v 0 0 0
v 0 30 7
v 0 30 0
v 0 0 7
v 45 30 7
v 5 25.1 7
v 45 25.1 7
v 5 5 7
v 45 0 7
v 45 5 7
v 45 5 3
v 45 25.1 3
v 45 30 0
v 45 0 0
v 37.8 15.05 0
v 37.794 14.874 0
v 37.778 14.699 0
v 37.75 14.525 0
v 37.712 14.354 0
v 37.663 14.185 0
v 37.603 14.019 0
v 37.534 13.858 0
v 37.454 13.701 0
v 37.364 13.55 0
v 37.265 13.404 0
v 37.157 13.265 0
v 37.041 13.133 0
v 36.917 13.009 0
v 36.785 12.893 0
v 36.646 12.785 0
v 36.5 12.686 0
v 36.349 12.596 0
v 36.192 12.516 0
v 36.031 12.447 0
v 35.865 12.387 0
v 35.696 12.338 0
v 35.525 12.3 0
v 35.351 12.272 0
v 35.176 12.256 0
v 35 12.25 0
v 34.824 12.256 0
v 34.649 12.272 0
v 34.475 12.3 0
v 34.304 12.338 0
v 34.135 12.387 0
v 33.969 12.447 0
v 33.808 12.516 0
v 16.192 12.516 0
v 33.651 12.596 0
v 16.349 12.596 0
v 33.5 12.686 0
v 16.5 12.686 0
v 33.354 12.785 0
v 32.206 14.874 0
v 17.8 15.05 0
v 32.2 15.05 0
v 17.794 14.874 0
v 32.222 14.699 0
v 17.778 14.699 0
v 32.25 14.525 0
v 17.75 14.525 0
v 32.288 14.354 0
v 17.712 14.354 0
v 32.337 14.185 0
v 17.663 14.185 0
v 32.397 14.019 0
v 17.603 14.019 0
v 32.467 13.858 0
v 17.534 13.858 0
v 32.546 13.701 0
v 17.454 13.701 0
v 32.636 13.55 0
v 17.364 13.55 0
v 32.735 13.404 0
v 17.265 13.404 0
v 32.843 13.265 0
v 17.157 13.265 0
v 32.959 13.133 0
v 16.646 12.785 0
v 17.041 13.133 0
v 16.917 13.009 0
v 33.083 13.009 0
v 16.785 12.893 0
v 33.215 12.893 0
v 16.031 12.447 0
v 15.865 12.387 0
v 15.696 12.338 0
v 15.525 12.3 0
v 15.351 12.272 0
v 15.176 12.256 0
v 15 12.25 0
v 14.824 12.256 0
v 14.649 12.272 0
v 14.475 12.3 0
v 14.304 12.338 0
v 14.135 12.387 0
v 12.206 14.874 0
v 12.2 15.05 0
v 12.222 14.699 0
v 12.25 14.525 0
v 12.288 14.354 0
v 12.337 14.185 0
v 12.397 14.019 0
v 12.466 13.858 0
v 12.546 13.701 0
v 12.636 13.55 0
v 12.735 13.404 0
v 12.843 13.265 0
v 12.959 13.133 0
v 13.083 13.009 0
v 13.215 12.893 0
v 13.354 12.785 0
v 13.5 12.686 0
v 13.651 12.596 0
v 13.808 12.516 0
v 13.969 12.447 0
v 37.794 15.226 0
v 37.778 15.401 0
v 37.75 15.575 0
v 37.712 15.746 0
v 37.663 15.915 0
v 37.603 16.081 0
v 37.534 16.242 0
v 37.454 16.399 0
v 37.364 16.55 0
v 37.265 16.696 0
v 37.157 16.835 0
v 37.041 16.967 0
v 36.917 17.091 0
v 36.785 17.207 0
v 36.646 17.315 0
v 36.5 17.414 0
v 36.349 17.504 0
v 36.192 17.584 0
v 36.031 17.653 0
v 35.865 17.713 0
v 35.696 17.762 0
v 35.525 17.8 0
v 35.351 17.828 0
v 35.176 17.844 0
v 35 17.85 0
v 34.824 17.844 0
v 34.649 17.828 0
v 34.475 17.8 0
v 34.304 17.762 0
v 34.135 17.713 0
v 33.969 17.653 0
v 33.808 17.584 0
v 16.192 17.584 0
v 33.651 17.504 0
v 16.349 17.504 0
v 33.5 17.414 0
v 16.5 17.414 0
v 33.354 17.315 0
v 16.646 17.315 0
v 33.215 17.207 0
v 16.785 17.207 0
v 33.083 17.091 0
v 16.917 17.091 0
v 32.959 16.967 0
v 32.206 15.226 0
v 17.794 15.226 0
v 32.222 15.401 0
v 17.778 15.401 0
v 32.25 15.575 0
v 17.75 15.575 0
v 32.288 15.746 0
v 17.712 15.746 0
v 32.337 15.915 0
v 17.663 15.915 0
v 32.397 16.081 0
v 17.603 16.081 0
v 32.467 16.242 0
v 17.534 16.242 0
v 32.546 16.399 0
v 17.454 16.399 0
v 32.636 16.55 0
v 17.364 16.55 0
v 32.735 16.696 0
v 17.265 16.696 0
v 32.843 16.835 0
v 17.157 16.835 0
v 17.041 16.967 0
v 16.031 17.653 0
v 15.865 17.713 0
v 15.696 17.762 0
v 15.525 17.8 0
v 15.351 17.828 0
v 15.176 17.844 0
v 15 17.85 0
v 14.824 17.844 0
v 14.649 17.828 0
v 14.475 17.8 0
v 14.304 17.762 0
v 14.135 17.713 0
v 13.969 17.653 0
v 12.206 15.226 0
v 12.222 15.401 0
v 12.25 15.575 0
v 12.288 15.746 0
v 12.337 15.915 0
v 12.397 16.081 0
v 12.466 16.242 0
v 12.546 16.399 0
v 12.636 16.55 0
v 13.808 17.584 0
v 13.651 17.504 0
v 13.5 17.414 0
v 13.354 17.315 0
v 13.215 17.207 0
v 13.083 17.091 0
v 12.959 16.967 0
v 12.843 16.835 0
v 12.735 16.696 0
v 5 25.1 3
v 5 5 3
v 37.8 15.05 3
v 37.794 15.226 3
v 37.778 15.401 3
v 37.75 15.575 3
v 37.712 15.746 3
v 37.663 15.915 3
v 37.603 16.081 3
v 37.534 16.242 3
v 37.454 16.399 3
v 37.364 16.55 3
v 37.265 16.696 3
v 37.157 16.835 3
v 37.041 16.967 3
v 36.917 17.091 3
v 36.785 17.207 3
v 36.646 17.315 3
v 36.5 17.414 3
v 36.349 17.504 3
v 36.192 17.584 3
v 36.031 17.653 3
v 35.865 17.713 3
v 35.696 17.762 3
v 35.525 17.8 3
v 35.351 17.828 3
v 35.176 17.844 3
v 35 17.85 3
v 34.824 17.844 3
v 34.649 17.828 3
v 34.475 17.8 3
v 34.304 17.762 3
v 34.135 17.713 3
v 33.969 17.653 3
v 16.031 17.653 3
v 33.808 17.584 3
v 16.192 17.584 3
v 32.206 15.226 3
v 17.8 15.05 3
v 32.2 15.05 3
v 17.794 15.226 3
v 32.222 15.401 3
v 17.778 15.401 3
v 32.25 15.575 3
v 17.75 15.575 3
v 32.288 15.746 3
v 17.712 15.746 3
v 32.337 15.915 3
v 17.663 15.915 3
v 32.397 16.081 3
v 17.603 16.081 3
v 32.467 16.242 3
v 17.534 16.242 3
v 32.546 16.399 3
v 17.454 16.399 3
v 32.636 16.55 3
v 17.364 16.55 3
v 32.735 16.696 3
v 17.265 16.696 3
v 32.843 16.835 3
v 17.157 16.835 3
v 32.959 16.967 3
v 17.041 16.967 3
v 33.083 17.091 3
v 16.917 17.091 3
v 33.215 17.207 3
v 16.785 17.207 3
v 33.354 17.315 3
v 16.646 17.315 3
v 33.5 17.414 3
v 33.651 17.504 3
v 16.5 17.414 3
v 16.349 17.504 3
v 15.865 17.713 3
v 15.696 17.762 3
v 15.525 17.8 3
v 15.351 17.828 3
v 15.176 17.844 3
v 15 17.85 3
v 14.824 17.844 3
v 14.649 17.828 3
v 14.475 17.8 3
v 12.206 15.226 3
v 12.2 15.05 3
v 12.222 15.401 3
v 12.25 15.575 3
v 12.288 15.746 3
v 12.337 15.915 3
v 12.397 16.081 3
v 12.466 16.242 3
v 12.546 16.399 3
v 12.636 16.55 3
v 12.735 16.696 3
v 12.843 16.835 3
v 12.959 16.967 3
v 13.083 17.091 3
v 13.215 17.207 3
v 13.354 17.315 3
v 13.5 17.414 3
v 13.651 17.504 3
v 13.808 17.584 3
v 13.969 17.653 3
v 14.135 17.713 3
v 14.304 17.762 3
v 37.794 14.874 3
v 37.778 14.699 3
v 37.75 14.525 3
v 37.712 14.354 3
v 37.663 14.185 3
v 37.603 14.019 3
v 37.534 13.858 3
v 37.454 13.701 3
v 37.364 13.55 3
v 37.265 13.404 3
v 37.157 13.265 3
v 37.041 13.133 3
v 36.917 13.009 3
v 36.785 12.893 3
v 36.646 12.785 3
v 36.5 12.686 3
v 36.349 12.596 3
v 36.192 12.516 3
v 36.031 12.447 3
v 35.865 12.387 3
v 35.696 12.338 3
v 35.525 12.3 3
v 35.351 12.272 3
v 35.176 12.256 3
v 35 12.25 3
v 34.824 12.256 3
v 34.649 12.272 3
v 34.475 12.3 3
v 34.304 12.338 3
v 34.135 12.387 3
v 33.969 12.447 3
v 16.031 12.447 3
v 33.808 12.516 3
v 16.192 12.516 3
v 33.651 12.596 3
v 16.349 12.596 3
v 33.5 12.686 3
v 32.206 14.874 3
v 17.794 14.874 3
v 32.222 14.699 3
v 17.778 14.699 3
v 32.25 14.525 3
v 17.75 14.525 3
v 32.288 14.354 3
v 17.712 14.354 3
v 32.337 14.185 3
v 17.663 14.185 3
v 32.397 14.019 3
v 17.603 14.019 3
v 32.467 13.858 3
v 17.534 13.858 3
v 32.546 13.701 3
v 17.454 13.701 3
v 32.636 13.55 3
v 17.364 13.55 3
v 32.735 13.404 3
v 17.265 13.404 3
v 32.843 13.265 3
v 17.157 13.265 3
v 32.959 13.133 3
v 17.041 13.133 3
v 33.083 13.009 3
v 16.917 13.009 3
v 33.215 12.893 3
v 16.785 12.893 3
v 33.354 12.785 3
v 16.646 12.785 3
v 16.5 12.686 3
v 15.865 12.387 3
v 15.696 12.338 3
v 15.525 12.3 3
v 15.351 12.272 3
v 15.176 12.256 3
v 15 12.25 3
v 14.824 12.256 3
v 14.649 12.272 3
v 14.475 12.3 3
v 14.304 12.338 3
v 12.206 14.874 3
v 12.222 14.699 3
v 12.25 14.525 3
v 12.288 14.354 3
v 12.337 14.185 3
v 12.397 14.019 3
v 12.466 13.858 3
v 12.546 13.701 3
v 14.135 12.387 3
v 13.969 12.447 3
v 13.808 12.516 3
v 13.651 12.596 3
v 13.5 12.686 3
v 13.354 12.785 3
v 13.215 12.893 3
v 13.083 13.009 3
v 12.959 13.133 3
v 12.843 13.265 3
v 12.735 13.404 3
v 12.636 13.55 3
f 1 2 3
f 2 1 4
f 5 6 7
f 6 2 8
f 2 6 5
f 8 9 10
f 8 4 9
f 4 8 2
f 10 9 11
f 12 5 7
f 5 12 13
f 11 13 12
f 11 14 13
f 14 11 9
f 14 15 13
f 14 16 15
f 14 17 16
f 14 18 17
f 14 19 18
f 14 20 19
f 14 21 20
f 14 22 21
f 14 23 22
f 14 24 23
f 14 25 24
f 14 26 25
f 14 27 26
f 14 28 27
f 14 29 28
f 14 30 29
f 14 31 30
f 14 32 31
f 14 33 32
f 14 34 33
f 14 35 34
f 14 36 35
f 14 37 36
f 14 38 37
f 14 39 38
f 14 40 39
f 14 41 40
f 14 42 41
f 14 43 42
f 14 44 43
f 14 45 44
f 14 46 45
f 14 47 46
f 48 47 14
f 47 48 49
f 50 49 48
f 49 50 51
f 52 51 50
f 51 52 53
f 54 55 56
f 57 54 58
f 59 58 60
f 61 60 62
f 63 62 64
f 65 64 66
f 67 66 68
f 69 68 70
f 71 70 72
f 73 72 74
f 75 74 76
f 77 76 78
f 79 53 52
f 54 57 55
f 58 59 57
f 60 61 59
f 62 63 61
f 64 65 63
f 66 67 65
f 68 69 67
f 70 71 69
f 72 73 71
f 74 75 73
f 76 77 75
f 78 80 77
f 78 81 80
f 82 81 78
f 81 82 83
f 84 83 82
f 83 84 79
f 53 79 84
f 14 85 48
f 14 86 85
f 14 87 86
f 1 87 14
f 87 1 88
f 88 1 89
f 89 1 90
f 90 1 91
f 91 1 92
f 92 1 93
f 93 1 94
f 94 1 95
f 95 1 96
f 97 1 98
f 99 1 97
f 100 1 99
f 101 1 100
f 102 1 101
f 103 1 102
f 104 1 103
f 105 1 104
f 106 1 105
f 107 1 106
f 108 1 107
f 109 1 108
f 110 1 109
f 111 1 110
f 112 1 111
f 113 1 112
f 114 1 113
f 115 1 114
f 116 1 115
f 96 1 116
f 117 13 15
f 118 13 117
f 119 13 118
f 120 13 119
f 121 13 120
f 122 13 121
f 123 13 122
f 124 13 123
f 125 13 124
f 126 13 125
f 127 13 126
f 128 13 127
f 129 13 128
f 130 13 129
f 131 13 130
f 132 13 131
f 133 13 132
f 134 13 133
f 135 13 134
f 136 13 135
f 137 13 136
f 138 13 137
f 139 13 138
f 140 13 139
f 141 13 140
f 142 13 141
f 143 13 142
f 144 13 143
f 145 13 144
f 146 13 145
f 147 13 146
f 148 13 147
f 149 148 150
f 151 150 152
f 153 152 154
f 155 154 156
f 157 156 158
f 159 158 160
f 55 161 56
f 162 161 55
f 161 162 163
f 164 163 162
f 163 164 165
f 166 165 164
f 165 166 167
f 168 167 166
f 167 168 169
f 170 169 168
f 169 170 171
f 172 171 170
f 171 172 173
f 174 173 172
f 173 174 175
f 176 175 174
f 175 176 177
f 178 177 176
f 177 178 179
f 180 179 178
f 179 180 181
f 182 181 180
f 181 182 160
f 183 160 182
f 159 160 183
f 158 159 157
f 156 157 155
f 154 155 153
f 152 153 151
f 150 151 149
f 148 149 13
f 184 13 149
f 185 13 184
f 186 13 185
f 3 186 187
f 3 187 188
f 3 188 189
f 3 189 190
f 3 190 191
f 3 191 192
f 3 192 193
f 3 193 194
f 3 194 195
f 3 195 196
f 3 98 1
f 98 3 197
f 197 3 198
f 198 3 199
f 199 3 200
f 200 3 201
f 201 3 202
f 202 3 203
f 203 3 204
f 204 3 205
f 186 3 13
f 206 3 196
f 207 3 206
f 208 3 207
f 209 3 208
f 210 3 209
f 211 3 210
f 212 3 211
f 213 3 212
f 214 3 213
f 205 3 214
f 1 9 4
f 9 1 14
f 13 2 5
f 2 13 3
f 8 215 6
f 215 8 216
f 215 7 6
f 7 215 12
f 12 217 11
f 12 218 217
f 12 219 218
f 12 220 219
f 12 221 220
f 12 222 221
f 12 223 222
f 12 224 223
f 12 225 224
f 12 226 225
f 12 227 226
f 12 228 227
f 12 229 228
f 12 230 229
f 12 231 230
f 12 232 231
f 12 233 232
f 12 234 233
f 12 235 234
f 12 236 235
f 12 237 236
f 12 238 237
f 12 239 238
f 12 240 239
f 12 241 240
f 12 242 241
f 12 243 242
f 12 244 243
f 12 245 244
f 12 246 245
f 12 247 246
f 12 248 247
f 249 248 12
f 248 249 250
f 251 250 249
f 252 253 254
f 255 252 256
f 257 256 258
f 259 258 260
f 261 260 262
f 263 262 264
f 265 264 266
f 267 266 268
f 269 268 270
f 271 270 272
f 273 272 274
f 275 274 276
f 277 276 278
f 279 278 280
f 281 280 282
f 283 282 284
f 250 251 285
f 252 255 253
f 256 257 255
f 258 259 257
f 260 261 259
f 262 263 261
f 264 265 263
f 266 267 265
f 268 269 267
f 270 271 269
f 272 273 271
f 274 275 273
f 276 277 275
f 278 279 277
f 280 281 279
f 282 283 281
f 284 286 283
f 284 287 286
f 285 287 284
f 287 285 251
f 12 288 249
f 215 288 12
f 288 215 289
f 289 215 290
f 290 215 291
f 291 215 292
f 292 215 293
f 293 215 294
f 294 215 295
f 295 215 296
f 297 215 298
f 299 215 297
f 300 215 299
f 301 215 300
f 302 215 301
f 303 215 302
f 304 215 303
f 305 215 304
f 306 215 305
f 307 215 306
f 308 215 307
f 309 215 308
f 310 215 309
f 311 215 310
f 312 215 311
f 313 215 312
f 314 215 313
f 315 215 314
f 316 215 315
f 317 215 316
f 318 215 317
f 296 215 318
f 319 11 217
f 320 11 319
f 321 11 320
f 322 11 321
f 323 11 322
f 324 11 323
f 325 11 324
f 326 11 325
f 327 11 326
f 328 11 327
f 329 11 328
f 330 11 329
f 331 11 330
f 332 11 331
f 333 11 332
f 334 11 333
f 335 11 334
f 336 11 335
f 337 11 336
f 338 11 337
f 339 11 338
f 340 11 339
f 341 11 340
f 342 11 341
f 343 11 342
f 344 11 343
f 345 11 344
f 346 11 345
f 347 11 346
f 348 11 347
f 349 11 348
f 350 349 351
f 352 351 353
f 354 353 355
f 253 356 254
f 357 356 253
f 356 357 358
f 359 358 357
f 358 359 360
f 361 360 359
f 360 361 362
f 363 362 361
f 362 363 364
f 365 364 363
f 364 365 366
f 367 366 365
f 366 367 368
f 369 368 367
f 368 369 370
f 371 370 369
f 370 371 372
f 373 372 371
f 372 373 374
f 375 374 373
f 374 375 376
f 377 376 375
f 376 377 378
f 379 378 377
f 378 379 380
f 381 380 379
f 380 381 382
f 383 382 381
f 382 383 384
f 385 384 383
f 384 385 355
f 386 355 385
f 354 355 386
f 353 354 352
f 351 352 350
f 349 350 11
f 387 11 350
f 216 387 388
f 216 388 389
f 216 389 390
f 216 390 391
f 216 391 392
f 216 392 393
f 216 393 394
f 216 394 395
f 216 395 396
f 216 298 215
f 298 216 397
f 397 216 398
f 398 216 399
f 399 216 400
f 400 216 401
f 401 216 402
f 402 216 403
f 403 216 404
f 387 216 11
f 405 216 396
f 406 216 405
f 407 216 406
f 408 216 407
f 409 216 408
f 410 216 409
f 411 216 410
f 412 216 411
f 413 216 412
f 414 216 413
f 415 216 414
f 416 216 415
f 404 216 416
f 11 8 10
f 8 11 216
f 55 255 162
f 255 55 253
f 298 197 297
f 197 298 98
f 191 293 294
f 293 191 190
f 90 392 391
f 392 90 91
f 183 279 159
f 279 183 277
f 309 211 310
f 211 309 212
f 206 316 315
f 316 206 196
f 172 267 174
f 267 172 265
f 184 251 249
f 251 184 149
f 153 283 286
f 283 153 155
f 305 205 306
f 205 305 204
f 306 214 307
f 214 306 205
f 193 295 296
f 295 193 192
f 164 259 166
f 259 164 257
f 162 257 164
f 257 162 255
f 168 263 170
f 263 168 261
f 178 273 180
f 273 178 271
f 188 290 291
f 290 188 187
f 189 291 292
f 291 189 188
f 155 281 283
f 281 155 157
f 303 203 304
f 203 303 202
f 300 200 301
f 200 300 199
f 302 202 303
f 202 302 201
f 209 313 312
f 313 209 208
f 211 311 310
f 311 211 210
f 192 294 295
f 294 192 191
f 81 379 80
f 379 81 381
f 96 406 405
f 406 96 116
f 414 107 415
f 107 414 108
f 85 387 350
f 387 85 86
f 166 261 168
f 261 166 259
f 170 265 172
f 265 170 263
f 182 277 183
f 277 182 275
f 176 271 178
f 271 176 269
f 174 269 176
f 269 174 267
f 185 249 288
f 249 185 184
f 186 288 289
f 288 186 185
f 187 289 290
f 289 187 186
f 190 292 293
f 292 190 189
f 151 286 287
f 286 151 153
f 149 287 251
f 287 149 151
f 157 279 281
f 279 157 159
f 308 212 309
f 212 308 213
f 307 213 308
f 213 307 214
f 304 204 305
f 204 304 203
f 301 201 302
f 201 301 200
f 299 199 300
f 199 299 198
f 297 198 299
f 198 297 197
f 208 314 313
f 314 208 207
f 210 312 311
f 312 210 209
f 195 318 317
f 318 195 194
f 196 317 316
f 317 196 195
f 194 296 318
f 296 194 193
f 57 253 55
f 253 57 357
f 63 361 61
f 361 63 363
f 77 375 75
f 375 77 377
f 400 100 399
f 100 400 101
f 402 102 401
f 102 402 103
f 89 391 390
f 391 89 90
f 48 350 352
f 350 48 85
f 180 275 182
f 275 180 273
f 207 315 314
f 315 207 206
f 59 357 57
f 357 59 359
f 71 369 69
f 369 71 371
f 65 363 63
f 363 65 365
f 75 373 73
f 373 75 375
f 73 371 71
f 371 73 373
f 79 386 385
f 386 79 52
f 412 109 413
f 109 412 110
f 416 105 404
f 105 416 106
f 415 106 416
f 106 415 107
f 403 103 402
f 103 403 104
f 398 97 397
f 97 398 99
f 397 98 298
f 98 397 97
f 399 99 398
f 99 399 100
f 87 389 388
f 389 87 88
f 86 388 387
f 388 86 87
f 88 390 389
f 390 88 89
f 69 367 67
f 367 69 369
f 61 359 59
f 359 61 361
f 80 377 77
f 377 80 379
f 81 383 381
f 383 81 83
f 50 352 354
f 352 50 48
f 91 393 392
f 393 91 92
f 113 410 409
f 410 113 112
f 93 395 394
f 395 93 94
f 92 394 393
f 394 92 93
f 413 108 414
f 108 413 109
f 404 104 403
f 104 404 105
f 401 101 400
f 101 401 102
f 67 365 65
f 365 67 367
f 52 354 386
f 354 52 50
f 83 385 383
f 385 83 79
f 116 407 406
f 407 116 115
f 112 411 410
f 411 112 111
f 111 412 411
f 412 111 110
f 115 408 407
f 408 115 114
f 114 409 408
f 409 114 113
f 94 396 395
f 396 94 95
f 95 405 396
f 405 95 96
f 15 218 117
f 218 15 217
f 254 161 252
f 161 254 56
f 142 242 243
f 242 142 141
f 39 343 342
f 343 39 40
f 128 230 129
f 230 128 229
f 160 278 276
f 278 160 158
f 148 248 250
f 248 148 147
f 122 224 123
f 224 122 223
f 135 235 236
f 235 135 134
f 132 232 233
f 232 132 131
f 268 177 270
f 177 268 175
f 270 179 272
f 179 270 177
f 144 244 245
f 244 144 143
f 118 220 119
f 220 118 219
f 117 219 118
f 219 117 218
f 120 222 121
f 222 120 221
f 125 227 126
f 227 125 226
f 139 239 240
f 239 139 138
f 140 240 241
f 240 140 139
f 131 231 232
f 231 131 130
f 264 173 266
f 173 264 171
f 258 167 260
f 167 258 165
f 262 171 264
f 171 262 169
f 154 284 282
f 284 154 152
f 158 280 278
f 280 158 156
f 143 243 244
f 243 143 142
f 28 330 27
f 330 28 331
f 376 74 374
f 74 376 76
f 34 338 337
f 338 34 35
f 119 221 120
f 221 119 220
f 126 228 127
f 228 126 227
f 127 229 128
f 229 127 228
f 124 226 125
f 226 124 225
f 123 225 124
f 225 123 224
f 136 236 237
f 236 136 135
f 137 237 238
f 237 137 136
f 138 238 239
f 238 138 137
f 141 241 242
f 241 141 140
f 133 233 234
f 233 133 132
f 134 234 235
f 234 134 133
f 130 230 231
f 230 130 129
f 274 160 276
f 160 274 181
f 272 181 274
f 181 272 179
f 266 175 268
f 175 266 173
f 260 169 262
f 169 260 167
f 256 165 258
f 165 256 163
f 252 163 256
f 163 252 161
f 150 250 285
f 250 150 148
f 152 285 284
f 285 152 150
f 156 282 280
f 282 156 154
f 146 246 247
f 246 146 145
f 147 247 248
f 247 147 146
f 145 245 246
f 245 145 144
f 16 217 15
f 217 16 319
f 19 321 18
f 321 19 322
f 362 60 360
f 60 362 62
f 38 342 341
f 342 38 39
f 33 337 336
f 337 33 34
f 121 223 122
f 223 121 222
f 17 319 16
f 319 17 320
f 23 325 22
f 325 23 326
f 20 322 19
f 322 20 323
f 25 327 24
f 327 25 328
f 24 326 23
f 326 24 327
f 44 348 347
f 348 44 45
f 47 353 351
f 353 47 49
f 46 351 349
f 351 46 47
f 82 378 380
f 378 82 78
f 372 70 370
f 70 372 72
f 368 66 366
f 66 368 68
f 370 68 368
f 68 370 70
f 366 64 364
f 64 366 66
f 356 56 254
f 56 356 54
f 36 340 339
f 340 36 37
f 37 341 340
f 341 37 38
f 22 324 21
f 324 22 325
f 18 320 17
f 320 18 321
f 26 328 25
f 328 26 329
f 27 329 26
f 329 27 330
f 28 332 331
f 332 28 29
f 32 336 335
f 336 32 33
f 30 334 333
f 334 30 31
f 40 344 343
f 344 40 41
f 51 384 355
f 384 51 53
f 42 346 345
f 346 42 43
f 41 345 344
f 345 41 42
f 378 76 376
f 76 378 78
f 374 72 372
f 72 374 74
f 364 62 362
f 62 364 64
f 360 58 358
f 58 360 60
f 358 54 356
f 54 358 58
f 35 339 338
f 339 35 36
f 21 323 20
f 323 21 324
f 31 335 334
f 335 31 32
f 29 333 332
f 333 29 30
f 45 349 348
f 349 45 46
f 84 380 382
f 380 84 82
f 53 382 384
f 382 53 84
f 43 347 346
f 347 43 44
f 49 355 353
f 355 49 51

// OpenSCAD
//////////////////////////////////////////////////////////////////////////////
// drill guide 2020
//////////////////////////////////////////////////////////////////////////////
// created 4/6/2016
// last update 6/27/2016
//////////////////////////////////////////////////////////////////////////////
// 4/7/16 - added aversion to use on makerslide
// 4/13/16 - corrected distance between holes
// 6/24/16 - made so that offset determines length
//////////////////////////////////////////////////////////////////////////////
// A drill guide for 2020 to be able to eliminate the plastic brackets
// on the base section.  Drill both for 2040 or makerslide ends, one hold for 2020
//////////////////////////////////////////////////////////////////////////////
// vars
/////////////////////////////////////////////////////////////////////////////
screw5 = 5.6;
width = 30;
thickness = 5;
w2020 = 20.1;
bottom = 10;
offset = 20;//80;
length = offset + 25;
////////////////////////////////////////////////////////////////////////////////

drillguide();
//drillguide2();
//test(); // test print for fitting 2020

/////////////////////////////////////////////////////////////////////////////////

module drillguide() { //2020 channel
	difference() {
		cube([length,width,thickness+2]);
		translate([5,5,3]) cube([length,w2020,thickness]);
		translate([bottom+5,w2020/2+5,-5]) cylinder(h=20,r=screw5/2,$fn=100);
		translate([offset+bottom+5,w2020/2+5,-5]) cylinder(h=20,r=screw5/2,$fn=100);
	}
}

/////////////////////////////////////////////////////////////////////////////////

module drillguide2() { // to use on makerslide
	difference() {
		cube([length,width-10,thickness+2]);
		translate([5,-1,3]) cube([length,width+2,thickness]);
		translate([bottom+5,w2020/2,-5]) cylinder(h=20,r=screw5/2,$fn=100);
		translate([offset+bottom+5,w2020/2,-5]) cylinder(h=20,r=screw5/2,$fn=100);
	}
}

//////////////////////////////////////////////////////////////////////////////////

module test() { // test print for fitting 2020
	difference() {
		drillguide();
		translate([20,-2,-2]) cube([length+5,width+5,thickness*2]);
	}
}

//////////////////// end of drillguide.scad //////////////////////////////////////
